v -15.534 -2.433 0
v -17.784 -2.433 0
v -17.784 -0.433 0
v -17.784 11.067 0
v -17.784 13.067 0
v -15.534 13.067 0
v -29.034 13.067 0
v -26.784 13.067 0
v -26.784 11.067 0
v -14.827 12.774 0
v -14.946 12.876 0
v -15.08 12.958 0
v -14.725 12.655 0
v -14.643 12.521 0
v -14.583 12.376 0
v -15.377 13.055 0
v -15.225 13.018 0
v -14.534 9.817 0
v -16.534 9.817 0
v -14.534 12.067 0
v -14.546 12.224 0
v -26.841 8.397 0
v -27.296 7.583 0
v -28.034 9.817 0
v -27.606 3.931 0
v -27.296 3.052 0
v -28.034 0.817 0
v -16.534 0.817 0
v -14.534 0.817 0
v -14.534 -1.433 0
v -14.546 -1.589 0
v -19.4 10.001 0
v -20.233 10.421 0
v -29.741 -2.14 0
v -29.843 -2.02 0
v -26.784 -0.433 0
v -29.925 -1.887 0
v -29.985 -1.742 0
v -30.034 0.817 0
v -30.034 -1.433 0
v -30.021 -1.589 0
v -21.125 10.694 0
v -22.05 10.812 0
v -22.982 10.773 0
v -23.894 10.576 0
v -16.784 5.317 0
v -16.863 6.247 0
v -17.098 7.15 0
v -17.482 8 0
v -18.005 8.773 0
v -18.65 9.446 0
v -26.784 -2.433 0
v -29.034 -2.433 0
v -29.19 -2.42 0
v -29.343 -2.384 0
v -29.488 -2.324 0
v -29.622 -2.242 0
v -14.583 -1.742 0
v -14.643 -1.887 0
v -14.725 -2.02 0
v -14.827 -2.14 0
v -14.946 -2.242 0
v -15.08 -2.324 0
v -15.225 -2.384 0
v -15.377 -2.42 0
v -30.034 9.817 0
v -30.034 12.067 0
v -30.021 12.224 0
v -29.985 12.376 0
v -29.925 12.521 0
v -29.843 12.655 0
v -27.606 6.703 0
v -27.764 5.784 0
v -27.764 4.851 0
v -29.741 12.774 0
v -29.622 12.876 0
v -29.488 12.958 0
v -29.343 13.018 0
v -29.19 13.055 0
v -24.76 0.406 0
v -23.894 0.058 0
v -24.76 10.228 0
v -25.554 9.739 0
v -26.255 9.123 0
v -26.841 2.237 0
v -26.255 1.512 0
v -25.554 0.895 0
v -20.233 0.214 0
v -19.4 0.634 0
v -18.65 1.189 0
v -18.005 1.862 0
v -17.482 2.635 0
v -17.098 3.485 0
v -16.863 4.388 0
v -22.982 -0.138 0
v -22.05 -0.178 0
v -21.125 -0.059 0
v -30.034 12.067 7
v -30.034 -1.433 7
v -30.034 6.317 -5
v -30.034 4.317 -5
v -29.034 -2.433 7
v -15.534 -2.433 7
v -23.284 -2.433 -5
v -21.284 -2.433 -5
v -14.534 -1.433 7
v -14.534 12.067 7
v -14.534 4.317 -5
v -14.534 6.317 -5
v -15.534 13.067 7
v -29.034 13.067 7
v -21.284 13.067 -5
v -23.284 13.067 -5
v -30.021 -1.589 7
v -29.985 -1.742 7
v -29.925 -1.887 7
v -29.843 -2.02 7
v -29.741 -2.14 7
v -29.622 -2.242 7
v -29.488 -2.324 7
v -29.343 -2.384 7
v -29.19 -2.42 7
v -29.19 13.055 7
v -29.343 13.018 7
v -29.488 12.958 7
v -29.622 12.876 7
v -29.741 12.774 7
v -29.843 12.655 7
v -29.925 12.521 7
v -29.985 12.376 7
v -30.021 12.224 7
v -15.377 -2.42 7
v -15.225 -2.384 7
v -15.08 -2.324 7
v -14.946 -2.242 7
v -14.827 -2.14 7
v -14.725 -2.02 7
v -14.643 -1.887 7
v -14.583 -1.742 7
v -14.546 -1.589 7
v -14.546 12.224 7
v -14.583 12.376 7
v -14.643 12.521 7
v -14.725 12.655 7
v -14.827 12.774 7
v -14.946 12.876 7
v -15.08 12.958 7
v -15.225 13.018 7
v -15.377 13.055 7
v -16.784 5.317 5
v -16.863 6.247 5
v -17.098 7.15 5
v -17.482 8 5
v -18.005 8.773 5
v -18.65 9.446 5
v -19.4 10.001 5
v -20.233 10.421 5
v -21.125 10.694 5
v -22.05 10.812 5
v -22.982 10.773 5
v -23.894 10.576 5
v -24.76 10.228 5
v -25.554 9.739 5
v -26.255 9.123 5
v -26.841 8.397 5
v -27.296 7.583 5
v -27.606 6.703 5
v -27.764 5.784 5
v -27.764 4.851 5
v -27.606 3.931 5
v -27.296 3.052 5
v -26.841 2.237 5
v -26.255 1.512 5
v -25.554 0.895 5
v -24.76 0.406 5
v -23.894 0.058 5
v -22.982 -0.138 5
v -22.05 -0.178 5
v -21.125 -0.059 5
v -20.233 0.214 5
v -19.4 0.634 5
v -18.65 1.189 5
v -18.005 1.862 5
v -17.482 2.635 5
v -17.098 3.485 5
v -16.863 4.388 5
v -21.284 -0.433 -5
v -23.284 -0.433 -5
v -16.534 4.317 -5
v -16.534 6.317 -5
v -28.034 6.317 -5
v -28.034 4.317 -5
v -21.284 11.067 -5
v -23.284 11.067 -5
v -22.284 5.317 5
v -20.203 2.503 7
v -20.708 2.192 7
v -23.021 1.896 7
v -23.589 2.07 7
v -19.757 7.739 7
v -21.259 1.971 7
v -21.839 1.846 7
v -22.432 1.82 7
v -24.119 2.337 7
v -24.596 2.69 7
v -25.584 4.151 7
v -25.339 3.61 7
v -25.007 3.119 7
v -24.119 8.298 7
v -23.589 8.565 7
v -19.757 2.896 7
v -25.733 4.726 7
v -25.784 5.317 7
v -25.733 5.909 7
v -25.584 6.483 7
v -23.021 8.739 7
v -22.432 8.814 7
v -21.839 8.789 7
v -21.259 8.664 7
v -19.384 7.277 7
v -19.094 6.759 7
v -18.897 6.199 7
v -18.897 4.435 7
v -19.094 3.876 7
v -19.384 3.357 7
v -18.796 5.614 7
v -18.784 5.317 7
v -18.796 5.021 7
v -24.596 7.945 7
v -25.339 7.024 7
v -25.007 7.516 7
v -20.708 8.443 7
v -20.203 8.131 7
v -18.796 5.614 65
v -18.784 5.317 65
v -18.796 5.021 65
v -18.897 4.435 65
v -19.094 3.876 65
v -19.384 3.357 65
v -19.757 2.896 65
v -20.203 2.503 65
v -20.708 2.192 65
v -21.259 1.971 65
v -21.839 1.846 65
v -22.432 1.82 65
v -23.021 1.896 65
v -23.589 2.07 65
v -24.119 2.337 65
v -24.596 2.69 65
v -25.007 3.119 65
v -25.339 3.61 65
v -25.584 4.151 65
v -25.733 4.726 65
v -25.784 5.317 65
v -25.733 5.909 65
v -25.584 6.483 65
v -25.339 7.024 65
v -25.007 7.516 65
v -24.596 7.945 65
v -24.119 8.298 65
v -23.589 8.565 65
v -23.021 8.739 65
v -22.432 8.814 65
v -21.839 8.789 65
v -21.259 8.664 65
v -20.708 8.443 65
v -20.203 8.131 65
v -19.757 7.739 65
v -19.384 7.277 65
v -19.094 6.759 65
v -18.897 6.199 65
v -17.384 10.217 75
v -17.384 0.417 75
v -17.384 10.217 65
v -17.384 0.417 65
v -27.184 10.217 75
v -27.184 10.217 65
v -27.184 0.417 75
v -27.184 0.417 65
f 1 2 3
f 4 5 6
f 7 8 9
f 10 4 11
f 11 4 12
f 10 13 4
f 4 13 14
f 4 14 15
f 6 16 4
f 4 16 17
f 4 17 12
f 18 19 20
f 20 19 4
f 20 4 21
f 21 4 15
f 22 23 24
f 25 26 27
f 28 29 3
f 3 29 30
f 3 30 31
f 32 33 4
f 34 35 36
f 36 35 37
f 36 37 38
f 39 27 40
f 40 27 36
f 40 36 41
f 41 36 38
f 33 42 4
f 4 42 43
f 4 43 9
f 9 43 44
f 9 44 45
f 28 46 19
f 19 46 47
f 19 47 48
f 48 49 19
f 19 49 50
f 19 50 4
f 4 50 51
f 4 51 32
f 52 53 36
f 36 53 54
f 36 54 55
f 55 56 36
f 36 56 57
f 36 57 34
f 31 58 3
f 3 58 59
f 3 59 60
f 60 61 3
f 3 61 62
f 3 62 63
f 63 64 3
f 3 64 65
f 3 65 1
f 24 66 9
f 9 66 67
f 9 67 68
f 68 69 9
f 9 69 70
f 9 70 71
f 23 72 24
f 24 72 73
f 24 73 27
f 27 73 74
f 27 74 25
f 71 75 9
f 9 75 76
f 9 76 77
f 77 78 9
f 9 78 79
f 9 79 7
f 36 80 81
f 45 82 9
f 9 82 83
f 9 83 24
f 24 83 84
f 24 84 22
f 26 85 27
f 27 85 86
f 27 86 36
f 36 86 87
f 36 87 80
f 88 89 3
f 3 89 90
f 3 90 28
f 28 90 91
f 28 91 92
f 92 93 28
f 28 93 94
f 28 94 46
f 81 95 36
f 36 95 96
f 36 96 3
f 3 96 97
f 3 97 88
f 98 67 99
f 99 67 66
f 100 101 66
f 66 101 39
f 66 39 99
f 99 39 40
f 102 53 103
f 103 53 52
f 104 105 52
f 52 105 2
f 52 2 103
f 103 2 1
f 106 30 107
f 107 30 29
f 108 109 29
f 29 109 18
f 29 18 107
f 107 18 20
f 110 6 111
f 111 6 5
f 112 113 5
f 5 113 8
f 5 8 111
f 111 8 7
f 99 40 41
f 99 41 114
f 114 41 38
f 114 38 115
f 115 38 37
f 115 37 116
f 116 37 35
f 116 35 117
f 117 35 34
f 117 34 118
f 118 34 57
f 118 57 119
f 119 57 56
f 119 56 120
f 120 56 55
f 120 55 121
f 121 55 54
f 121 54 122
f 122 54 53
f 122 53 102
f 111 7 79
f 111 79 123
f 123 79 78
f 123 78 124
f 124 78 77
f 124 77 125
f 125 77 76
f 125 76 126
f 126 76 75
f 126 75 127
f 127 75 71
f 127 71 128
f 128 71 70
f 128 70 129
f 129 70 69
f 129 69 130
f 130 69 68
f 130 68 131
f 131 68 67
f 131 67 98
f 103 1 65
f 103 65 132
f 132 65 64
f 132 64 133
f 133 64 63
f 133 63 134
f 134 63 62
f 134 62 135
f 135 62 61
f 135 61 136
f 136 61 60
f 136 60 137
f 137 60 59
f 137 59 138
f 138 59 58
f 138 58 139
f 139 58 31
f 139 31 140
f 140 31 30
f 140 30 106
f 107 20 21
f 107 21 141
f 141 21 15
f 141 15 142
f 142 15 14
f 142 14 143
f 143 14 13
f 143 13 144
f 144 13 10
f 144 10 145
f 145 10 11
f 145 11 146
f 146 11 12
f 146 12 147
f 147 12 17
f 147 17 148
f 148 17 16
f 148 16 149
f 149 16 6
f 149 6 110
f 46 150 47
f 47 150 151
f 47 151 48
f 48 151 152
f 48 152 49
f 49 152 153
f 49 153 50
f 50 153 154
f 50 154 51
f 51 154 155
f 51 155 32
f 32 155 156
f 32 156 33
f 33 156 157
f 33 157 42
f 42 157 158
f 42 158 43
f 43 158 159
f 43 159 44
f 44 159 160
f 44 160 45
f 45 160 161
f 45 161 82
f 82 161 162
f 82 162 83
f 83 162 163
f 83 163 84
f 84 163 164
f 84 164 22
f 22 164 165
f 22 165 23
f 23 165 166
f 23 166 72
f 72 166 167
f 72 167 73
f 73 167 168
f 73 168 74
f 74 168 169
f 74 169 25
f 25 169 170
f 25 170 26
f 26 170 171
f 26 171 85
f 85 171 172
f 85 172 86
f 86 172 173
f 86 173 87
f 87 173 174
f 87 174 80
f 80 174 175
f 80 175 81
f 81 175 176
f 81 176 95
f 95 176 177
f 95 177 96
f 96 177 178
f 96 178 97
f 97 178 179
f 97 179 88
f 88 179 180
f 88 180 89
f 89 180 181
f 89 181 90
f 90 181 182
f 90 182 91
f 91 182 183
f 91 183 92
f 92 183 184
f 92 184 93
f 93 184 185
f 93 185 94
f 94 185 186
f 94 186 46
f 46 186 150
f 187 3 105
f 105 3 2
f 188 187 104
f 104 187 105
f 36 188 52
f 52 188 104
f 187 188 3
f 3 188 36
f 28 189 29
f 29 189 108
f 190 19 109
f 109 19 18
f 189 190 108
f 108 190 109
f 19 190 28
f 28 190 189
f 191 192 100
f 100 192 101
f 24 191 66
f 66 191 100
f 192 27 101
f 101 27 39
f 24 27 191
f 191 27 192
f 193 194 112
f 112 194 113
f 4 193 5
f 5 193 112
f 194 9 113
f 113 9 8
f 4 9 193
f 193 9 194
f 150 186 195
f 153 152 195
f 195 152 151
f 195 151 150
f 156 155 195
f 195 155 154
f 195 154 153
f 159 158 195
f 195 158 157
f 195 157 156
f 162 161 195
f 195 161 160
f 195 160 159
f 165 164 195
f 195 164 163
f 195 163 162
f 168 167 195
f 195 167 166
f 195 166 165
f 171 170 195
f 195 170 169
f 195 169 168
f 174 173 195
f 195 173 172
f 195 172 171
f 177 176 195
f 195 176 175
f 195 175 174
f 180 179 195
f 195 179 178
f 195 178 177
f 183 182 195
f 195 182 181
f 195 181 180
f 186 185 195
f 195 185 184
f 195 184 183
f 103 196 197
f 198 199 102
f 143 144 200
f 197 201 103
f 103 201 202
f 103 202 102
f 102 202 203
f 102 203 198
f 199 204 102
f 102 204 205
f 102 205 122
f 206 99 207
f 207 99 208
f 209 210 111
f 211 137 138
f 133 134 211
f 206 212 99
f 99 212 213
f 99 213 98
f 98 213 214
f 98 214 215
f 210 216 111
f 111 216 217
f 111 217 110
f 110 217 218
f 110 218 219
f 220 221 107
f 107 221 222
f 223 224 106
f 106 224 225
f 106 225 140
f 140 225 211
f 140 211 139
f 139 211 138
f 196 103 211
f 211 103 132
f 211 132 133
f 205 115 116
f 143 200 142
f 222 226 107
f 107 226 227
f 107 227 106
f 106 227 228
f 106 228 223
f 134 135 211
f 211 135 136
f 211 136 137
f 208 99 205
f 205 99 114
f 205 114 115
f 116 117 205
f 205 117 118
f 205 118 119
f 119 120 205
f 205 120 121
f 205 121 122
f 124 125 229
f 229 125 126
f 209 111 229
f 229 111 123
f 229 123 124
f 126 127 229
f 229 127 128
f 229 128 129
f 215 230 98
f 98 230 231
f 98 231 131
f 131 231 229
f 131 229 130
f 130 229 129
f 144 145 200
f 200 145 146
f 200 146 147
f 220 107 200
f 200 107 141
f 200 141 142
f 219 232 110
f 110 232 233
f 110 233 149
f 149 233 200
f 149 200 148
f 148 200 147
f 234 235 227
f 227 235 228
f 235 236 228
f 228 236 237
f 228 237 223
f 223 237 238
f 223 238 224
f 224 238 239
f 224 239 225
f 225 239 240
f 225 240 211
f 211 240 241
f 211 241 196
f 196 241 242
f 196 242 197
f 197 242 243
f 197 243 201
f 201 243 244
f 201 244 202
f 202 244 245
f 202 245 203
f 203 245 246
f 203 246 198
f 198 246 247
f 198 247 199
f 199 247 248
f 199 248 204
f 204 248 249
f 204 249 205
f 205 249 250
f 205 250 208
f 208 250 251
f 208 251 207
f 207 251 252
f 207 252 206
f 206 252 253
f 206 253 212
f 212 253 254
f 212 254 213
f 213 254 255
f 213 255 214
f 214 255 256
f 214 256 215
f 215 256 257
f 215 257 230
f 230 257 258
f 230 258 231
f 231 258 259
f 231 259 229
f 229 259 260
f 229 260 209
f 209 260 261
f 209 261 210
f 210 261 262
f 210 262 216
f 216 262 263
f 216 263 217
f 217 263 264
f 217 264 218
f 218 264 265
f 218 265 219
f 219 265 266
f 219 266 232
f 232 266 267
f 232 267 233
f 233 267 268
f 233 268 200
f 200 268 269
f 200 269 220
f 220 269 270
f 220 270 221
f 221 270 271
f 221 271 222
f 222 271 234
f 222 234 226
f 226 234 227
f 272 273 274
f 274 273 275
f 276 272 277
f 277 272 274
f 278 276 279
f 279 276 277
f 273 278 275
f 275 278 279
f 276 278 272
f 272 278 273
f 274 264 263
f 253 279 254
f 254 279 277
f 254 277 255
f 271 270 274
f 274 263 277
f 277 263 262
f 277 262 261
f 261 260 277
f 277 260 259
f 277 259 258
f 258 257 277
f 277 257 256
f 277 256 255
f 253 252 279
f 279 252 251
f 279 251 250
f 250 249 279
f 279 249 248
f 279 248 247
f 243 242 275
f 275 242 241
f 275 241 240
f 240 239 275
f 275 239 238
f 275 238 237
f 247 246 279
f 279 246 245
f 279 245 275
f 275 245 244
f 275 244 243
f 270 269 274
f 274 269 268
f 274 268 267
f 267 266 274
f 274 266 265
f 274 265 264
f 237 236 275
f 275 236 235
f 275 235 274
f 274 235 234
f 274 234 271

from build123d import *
from build123d.topology import SkipClean

# Parameters (mm, degrees)
SKETCH_1_W          = 9.5
SKETCH_1_H          = 9.5
EXTRUDE_2_DEPTH     = 5
FILLET_2_R          = 1
CUT_EXTRUDE_1_DEPTH = 34.132793262
EXTRUDE_3_DEPTH     = 5
EXTRUDE_5_DEPTH     = 2
EXTRUDE_6_DEPTH     = 2
EXTRUDE_7_DEPTH     = 2
EXTRUDE_8_DEPTH     = 2
EXTRUDE_START       = 2
EXTRUDE_10_DEPTH    = 2
SKETCH_15_R         = 3.5
EXTRUDE_11_DEPTH    = 58
SKETCH_16_W         = 9.8
SKETCH_16_H         = 9.8
EXTRUDE_12_DEPTH    = 10


with BuildPart() as part:
    # 草图1 → 凸台-拉伸2 (new body)
    with BuildSketch(Plane.XY):
        Polygon((-30.033755564, 13.067345411), (-14.533755564, 13.067345411), (-14.533755564, -2.432654589), (-30.033755564, -2.432654589), (-30.033755564, 10.067345411), align=None)
        with Locations((-22.283755564, 5.317345411)):
            Rectangle(SKETCH_1_W, SKETCH_1_H, mode=Mode.SUBTRACT)
    extrude(amount=EXTRUDE_2_DEPTH)

    # 圆角2
    fillet_2_edges = [part.edges().sort_by_distance(p)[0] for p in [
        (-30.033755564, 13.067345411, 2.5),
        (-14.533755564, 13.067345411, 2.5),
        (-14.533755564, -2.432654589, 2.5),
        (-30.033755564, -2.432654589, 2.5),
    ]]
    fillet(fillet_2_edges, radius=FILLET_2_R)

    # 草图2 → 切除-拉伸1 (cut, through all)
    with BuildSketch(Plane.XY.offset(5)):
        with BuildLine():
            ThreePointArc((-16.783755564, 5.317345411), (-16.974565419, 6.753486072), (-17.533755564, 8.089979537))
            Line((-17.533755564, 8.089979537), (-17.533755564, 2.544711284))
            ThreePointArc((-17.533755564, 2.544711284), (-16.974565419, 3.881204749), (-16.783755564, 5.317345411))
        make_face()
        with BuildLine():
            ThreePointArc((-19.511121437, 10.067345411), (-22.283755564, 10.817345411), (-25.056389691, 10.067345411))
            Line((-25.056389691, 10.067345411), (-22.283755564, 10.067345411))
            Line((-22.283755564, 10.067345411), (-19.511121437, 10.067345411))
        make_face()
        with BuildLine():
            Line((-27.033755564, 2.544711284), (-27.033755564, 8.089979537))
            ThreePointArc((-27.033755564, 8.089979537), (-27.783755564, 5.317345411), (-27.033755564, 2.544711284))
        make_face()
        with BuildLine():
            Line((-19.511121437, 0.567345411), (-22.283755564, 0.567345411))
            Line((-22.283755564, 0.567345411), (-25.056389691, 0.567345411))
            ThreePointArc((-25.056389691, 0.567345411), (-22.283755564, -0.182654589), (-19.511121437, 0.567345411))
        make_face()
    extrude(amount=-CUT_EXTRUDE_1_DEPTH, mode=Mode.SUBTRACT)

    # 草图4 → 凸台-拉伸3 (add)
    with SkipClean():  # the faces are left unmerged after this step: merging them gives an invalid solid
        with BuildSketch(Plane.XY.offset(5)):
            with BuildLine():
                Line((-25.056389691, 10.067345411), (-27.033755564, 10.067345411))
                Line((-27.033755564, 10.067345411), (-27.033755564, 8.089979537))
                ThreePointArc((-27.033755564, 8.089979537), (-26.17284286, 9.206432707), (-25.056389691, 10.067345411))
            make_face()
            with BuildLine():
                Line((-17.533755564, 10.067345411), (-19.511121437, 10.067345411))
                ThreePointArc((-19.511121437, 10.067345411), (-18.394668267, 9.206432707), (-17.533755564, 8.089979537))
                Line((-17.533755564, 8.089979537), (-17.533755564, 10.067345411))
            make_face()
            with BuildLine():
                Line((-17.533755564, 0.567345411), (-17.533755564, 2.544711284))
                ThreePointArc((-17.533755564, 2.544711284), (-18.394668267, 1.428258114), (-19.511121437, 0.567345411))
                Line((-19.511121437, 0.567345411), (-17.533755564, 0.567345411))
            make_face()
            with BuildLine():
                ThreePointArc((-25.056389691, 0.567345411), (-26.17284286, 1.428258114), (-27.033755564, 2.544711284))
                Line((-27.033755564, 2.544711284), (-27.033755564, 0.567345411))
                Line((-27.033755564, 0.567345411), (-25.056389691, 0.567345411))
            make_face()
        extrude(amount=-EXTRUDE_3_DEPTH)

    # 草图9 → 凸台-拉伸5 (add)
    with SkipClean():  # the faces are left unmerged after this step: merging them gives an invalid solid
        with BuildSketch(Plane.XZ.offset(2.432654589)):
            Polygon((-22.283755564, -5), (-22.283755564, 0), (-26.783755564, 0), (-23.283755564, -5), align=None)
            Polygon((-17.783755564, 0), (-22.283755564, 0), (-22.283755564, -5), (-21.283755564, -5), align=None)
        extrude(amount=-EXTRUDE_5_DEPTH)

    # 草图10 → 凸台-拉伸6 (add)
    with SkipClean():  # the faces are left unmerged after this step: merging them gives an invalid solid
        with BuildSketch(Plane(origin=(-14.533755564, 0, 0), x_dir=(0, 0, -1), z_dir=(1, 0, 0))):
            Polygon((5, 5.317345411), (0, 5.317345411), (0, 0.817345411), (5, 4.317345411), align=None)
            Polygon((0, 9.817345411), (0, 5.317345411), (5, 5.317345411), (5, 6.317345411), align=None)
        extrude(amount=-EXTRUDE_6_DEPTH)

    # 草图11 → 凸台-拉伸7 (add)
    with SkipClean():  # the faces are left unmerged after this step: merging them gives an invalid solid
        with BuildSketch(Plane.ZY.offset(30.033755564)):
            Polygon((0, 0.817345411), (0, 5.317345411), (-5, 5.317345411), (-5, 4.317345411), align=None)
            Polygon((-5, 5.317345411), (0, 5.317345411), (0, 9.817345411), (-5, 6.317345411), align=None)
        extrude(amount=-EXTRUDE_7_DEPTH)

    # 草图12 → 凸台-拉伸8 (add)
    with SkipClean():  # the faces are left unmerged after this step: merging them gives an invalid solid
        with BuildSketch(Plane(origin=(0, 13.067345411, 0), x_dir=(1, 0, 0), z_dir=(0, 1, 0))):
            Polygon((-26.783755564, 0), (-22.283755564, 0), (-22.283755564, 5), (-23.283755564, 5), align=None)
            Polygon((-22.283755564, 5), (-22.283755564, 0), (-17.783755564, 0), (-21.283755564, 5), align=None)
        extrude(amount=-EXTRUDE_8_DEPTH)

    # 草图13 → 凸台-拉伸10 (add)
    with SkipClean():  # the faces are left unmerged after this step: merging them gives an invalid solid
        with BuildSketch(Plane.XY.offset(5).offset(EXTRUDE_START)):
            with BuildLine():
                Line((-30.033755564, 12.067345411), (-30.033755564, -1.432654589))
                ThreePointArc((-30.033755564, -1.432654589), (-29.740862345, -2.13976137), (-29.033755564, -2.432654589))
                Line((-29.033755564, -2.432654589), (-15.533755564, -2.432654589))
                ThreePointArc((-15.533755564, -2.432654589), (-14.826648783, -2.13976137), (-14.533755564, -1.432654589))
                Line((-14.533755564, -1.432654589), (-14.533755564, 12.067345411))
                ThreePointArc((-14.533755564, 12.067345411), (-14.826648783, 12.774452192), (-15.533755564, 13.067345411))
                Line((-15.533755564, 13.067345411), (-29.033755564, 13.067345411))
                ThreePointArc((-29.033755564, 13.067345411), (-29.740862345, 12.774452192), (-30.033755564, 12.067345411))
            make_face()
        extrude(amount=-EXTRUDE_10_DEPTH)

    # 草图15 → 凸台-拉伸11 (add)
    with SkipClean():  # the faces are left unmerged after this step: merging them gives an invalid solid
        with BuildSketch(Plane.XY.offset(7)):
            with Locations(Location((-22.283755564, 5.317345411, 0), (0, 0, 180))):
                Circle(SKETCH_15_R)
        extrude(amount=EXTRUDE_11_DEPTH)

    # 草图16 → 凸台-拉伸12 (add)
    with SkipClean():  # the faces are left unmerged after this step: merging them gives an invalid solid
        with BuildSketch(Plane.XY.offset(65)):
            with Locations((-22.283755564, 5.317345411)):
                Rectangle(SKETCH_16_W, SKETCH_16_H)
        extrude(amount=EXTRUDE_12_DEPTH)


solid = part.part
